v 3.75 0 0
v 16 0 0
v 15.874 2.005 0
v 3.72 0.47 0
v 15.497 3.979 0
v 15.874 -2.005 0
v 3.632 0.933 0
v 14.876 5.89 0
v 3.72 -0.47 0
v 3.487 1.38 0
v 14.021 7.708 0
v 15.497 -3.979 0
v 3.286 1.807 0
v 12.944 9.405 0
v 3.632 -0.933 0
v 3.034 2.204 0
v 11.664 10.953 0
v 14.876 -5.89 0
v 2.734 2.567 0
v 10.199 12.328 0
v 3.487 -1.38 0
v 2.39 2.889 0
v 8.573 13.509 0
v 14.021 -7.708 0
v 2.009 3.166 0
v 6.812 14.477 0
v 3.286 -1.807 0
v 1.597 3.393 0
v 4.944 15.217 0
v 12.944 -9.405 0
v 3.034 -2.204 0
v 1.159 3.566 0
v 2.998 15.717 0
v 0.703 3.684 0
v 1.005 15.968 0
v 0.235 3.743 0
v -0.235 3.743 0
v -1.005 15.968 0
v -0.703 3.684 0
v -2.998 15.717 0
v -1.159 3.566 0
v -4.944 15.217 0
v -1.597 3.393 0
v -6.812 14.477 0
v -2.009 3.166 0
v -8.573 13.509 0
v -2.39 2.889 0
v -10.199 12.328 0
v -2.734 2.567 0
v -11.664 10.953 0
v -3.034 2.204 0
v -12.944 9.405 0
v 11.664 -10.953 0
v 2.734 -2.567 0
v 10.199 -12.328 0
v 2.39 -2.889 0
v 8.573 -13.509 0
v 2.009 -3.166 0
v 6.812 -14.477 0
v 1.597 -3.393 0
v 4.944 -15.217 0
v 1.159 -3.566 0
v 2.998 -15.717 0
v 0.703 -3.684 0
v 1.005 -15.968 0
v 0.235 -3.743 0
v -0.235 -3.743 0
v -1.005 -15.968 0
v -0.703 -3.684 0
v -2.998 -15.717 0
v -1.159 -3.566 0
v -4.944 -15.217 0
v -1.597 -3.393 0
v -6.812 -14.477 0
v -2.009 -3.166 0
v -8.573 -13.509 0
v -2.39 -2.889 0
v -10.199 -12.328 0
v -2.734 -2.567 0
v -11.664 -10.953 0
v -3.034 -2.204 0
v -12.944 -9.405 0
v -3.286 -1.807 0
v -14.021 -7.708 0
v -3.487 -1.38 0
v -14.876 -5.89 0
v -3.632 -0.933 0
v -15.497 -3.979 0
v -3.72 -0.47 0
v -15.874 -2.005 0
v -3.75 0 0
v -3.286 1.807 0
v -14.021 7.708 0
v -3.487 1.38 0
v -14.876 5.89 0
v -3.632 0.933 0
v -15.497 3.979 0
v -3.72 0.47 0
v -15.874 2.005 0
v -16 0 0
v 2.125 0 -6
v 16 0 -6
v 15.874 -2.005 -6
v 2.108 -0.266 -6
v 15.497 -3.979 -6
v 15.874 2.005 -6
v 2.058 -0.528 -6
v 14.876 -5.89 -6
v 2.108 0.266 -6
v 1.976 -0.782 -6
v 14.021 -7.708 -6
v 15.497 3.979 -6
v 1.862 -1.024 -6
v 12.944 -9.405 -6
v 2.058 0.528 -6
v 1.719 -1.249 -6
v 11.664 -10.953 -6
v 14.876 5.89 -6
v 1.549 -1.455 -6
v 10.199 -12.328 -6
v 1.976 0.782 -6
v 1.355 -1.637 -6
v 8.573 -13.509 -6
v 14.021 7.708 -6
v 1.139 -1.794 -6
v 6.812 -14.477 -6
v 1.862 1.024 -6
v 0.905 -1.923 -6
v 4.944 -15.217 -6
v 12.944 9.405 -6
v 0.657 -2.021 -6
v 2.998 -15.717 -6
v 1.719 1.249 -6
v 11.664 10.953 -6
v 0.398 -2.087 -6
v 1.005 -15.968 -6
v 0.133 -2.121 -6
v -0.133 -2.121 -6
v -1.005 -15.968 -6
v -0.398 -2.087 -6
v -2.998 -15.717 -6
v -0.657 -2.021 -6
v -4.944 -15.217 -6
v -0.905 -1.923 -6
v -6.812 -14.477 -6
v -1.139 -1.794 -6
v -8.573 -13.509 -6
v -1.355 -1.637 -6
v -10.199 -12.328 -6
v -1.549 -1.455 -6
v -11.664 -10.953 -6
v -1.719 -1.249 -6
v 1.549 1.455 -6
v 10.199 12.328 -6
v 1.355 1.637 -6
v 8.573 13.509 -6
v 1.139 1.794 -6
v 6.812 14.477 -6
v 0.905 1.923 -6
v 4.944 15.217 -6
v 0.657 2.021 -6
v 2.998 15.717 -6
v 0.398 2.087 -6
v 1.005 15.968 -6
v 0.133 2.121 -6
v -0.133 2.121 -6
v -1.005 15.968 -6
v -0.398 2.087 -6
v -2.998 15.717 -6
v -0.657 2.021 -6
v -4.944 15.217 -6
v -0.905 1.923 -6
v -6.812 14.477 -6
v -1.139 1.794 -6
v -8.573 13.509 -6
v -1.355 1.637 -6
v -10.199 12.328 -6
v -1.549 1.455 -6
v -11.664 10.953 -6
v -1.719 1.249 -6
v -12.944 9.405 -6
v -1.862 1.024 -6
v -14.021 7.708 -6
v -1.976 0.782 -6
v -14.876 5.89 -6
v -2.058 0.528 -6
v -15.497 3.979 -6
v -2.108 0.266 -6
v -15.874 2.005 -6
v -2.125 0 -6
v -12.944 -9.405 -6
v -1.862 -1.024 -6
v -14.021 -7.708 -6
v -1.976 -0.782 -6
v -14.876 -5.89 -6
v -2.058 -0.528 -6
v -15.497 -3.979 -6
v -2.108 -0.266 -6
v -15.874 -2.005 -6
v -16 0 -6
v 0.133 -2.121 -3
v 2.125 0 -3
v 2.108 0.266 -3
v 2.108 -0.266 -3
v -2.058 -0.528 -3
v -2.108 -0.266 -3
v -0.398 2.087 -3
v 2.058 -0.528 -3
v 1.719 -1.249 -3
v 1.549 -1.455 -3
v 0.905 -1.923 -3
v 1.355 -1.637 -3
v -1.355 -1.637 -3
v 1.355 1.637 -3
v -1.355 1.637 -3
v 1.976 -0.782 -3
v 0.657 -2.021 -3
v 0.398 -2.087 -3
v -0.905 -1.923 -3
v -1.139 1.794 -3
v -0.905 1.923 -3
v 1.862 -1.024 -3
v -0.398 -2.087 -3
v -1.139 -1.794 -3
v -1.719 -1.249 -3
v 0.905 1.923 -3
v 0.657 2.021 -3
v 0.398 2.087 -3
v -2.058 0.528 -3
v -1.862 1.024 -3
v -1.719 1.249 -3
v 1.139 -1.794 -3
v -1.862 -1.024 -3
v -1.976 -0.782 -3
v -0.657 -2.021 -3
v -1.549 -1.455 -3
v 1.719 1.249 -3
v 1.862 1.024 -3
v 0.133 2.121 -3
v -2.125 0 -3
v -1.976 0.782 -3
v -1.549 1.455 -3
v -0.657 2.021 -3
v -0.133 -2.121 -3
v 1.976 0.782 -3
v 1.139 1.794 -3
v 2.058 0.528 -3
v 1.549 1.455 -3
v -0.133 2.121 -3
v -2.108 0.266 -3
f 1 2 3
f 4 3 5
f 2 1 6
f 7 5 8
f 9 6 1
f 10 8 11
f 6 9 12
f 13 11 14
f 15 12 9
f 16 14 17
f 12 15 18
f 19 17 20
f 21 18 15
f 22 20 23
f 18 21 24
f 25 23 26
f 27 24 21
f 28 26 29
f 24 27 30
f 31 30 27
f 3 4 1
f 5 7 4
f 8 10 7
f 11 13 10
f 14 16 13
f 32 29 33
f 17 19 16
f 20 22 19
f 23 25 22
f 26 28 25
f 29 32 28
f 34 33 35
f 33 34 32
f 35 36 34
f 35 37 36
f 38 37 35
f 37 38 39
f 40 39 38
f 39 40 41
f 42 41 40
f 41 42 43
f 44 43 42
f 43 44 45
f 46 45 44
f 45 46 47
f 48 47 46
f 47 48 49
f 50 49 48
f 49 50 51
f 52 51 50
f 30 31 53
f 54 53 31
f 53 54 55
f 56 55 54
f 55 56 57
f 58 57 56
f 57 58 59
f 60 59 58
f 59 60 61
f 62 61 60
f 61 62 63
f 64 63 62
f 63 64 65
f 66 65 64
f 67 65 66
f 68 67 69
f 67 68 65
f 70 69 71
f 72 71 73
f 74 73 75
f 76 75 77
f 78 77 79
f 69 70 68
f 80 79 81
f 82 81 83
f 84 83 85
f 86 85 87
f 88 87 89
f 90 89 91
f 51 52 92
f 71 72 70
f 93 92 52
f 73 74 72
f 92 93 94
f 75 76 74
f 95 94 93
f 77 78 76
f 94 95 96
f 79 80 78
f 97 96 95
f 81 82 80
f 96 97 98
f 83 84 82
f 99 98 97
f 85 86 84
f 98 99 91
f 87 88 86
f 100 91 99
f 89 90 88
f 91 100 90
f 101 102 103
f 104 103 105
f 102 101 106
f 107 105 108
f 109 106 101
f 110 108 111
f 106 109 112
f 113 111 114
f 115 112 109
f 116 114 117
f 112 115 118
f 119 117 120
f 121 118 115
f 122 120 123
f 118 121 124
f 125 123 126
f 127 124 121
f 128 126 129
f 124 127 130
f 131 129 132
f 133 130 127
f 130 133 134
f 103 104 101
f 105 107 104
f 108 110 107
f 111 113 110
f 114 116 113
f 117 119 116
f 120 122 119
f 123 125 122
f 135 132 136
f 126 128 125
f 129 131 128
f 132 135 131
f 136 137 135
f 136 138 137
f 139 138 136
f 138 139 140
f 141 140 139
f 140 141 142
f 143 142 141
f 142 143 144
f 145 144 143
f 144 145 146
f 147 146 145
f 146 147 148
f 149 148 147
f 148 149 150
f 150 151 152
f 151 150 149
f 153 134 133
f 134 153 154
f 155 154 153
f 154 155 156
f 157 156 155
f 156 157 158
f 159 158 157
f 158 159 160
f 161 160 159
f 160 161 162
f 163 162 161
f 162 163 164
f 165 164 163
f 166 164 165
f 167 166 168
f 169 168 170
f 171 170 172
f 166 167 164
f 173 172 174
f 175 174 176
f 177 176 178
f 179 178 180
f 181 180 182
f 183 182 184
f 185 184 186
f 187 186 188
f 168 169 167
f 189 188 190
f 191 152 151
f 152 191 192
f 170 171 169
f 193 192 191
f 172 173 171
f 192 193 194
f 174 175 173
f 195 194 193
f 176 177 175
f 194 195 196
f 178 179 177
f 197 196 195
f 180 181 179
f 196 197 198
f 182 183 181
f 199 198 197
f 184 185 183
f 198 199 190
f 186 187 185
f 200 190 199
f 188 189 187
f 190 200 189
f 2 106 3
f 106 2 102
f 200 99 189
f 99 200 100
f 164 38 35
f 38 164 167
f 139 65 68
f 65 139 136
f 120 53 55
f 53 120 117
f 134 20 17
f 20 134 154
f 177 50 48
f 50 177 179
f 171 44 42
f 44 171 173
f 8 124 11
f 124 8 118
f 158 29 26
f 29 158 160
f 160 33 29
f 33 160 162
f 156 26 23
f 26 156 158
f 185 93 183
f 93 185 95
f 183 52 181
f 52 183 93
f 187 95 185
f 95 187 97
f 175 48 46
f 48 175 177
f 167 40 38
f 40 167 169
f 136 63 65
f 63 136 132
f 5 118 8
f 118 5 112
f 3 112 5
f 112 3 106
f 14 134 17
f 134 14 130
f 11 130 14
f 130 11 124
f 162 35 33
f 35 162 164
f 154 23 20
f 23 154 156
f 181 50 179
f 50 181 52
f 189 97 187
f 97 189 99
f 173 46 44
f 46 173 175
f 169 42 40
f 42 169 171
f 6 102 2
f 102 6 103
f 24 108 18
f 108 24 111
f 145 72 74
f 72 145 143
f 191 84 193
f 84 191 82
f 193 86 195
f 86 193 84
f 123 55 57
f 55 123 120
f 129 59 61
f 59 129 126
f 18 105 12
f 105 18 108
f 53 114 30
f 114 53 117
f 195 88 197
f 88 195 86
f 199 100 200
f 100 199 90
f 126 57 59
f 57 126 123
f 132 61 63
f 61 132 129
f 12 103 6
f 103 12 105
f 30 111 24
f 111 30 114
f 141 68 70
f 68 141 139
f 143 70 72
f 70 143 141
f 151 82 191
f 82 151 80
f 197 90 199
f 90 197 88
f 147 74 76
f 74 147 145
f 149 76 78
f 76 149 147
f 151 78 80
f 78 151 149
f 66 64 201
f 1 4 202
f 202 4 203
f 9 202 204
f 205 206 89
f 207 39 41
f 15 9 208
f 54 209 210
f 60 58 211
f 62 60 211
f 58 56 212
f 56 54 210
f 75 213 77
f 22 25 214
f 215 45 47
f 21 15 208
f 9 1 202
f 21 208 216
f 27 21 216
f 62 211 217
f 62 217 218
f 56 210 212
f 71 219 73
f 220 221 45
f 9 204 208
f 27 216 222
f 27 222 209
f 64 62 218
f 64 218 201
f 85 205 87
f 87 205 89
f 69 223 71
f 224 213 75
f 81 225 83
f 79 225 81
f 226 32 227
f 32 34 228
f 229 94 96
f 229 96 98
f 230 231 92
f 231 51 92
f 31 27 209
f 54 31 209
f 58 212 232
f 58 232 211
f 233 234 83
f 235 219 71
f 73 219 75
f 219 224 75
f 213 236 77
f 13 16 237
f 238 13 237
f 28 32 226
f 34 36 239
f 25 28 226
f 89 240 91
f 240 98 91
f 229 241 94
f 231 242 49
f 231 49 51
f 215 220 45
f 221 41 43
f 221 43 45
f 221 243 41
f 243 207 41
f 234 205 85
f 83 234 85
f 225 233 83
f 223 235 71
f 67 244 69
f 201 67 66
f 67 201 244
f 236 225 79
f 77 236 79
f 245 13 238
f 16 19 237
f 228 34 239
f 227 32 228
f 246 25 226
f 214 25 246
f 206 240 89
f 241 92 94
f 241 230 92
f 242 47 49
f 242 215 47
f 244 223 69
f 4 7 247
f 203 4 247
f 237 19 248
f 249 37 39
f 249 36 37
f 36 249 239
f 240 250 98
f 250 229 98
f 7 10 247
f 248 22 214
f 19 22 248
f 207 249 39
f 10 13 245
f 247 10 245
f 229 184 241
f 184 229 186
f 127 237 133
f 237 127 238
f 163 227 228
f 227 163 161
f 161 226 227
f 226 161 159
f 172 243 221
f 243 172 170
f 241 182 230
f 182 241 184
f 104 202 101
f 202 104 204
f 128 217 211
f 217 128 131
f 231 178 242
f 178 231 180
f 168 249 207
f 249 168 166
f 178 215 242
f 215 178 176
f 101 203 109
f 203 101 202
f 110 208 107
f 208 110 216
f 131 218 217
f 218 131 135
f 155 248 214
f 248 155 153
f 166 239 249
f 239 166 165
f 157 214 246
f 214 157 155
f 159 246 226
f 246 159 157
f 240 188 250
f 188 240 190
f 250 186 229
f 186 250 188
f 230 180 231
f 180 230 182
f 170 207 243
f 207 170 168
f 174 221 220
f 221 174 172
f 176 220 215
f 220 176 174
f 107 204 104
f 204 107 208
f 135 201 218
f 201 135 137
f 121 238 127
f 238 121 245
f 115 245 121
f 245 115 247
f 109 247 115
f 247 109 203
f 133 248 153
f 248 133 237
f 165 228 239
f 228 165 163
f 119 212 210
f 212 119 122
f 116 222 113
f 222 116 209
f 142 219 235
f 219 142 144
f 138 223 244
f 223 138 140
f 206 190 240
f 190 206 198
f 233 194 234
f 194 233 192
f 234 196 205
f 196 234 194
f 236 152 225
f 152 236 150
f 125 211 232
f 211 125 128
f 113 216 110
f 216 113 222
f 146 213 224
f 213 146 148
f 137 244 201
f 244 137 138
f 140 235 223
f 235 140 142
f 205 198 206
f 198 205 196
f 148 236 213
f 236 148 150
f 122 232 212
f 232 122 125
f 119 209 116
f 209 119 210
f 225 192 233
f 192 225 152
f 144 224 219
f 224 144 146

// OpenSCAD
$fn = 50;


difference() {
	union() {
		translate(v = [0, 0, -6.0000000000]) {
			cylinder(h = 6, r = 7.0000000000);
		}
		translate(v = [0, 0, -6.0000000000]) {
			cylinder(h = 6, r = 16.0000000000);
		}
	}
	union() {
		translate(v = [0, 0, 0]) {
			rotate(a = [0, 0, 0]) {
				difference() {
					union() {
						#translate(v = [0, 0, -6.0000000000]) {
							cylinder(h = 6, r = 2.0000000000);
						}
						#translate(v = [0, 0, -3]) {
							cylinder(h = 3, r = 7.0000000000, r1 = 2.1250000000, r2 = 3.7500000000);
						}
						#translate(v = [0, 0, -6.0000000000]) {
							cylinder(h = 6, r = 2.1250000000);
						}
						#translate(v = [0, 0, -6.0000000000]) {
							cylinder(h = 6, r = 2.0000000000);
						}
					}
					union();
				}
			}
		}
	}
}
